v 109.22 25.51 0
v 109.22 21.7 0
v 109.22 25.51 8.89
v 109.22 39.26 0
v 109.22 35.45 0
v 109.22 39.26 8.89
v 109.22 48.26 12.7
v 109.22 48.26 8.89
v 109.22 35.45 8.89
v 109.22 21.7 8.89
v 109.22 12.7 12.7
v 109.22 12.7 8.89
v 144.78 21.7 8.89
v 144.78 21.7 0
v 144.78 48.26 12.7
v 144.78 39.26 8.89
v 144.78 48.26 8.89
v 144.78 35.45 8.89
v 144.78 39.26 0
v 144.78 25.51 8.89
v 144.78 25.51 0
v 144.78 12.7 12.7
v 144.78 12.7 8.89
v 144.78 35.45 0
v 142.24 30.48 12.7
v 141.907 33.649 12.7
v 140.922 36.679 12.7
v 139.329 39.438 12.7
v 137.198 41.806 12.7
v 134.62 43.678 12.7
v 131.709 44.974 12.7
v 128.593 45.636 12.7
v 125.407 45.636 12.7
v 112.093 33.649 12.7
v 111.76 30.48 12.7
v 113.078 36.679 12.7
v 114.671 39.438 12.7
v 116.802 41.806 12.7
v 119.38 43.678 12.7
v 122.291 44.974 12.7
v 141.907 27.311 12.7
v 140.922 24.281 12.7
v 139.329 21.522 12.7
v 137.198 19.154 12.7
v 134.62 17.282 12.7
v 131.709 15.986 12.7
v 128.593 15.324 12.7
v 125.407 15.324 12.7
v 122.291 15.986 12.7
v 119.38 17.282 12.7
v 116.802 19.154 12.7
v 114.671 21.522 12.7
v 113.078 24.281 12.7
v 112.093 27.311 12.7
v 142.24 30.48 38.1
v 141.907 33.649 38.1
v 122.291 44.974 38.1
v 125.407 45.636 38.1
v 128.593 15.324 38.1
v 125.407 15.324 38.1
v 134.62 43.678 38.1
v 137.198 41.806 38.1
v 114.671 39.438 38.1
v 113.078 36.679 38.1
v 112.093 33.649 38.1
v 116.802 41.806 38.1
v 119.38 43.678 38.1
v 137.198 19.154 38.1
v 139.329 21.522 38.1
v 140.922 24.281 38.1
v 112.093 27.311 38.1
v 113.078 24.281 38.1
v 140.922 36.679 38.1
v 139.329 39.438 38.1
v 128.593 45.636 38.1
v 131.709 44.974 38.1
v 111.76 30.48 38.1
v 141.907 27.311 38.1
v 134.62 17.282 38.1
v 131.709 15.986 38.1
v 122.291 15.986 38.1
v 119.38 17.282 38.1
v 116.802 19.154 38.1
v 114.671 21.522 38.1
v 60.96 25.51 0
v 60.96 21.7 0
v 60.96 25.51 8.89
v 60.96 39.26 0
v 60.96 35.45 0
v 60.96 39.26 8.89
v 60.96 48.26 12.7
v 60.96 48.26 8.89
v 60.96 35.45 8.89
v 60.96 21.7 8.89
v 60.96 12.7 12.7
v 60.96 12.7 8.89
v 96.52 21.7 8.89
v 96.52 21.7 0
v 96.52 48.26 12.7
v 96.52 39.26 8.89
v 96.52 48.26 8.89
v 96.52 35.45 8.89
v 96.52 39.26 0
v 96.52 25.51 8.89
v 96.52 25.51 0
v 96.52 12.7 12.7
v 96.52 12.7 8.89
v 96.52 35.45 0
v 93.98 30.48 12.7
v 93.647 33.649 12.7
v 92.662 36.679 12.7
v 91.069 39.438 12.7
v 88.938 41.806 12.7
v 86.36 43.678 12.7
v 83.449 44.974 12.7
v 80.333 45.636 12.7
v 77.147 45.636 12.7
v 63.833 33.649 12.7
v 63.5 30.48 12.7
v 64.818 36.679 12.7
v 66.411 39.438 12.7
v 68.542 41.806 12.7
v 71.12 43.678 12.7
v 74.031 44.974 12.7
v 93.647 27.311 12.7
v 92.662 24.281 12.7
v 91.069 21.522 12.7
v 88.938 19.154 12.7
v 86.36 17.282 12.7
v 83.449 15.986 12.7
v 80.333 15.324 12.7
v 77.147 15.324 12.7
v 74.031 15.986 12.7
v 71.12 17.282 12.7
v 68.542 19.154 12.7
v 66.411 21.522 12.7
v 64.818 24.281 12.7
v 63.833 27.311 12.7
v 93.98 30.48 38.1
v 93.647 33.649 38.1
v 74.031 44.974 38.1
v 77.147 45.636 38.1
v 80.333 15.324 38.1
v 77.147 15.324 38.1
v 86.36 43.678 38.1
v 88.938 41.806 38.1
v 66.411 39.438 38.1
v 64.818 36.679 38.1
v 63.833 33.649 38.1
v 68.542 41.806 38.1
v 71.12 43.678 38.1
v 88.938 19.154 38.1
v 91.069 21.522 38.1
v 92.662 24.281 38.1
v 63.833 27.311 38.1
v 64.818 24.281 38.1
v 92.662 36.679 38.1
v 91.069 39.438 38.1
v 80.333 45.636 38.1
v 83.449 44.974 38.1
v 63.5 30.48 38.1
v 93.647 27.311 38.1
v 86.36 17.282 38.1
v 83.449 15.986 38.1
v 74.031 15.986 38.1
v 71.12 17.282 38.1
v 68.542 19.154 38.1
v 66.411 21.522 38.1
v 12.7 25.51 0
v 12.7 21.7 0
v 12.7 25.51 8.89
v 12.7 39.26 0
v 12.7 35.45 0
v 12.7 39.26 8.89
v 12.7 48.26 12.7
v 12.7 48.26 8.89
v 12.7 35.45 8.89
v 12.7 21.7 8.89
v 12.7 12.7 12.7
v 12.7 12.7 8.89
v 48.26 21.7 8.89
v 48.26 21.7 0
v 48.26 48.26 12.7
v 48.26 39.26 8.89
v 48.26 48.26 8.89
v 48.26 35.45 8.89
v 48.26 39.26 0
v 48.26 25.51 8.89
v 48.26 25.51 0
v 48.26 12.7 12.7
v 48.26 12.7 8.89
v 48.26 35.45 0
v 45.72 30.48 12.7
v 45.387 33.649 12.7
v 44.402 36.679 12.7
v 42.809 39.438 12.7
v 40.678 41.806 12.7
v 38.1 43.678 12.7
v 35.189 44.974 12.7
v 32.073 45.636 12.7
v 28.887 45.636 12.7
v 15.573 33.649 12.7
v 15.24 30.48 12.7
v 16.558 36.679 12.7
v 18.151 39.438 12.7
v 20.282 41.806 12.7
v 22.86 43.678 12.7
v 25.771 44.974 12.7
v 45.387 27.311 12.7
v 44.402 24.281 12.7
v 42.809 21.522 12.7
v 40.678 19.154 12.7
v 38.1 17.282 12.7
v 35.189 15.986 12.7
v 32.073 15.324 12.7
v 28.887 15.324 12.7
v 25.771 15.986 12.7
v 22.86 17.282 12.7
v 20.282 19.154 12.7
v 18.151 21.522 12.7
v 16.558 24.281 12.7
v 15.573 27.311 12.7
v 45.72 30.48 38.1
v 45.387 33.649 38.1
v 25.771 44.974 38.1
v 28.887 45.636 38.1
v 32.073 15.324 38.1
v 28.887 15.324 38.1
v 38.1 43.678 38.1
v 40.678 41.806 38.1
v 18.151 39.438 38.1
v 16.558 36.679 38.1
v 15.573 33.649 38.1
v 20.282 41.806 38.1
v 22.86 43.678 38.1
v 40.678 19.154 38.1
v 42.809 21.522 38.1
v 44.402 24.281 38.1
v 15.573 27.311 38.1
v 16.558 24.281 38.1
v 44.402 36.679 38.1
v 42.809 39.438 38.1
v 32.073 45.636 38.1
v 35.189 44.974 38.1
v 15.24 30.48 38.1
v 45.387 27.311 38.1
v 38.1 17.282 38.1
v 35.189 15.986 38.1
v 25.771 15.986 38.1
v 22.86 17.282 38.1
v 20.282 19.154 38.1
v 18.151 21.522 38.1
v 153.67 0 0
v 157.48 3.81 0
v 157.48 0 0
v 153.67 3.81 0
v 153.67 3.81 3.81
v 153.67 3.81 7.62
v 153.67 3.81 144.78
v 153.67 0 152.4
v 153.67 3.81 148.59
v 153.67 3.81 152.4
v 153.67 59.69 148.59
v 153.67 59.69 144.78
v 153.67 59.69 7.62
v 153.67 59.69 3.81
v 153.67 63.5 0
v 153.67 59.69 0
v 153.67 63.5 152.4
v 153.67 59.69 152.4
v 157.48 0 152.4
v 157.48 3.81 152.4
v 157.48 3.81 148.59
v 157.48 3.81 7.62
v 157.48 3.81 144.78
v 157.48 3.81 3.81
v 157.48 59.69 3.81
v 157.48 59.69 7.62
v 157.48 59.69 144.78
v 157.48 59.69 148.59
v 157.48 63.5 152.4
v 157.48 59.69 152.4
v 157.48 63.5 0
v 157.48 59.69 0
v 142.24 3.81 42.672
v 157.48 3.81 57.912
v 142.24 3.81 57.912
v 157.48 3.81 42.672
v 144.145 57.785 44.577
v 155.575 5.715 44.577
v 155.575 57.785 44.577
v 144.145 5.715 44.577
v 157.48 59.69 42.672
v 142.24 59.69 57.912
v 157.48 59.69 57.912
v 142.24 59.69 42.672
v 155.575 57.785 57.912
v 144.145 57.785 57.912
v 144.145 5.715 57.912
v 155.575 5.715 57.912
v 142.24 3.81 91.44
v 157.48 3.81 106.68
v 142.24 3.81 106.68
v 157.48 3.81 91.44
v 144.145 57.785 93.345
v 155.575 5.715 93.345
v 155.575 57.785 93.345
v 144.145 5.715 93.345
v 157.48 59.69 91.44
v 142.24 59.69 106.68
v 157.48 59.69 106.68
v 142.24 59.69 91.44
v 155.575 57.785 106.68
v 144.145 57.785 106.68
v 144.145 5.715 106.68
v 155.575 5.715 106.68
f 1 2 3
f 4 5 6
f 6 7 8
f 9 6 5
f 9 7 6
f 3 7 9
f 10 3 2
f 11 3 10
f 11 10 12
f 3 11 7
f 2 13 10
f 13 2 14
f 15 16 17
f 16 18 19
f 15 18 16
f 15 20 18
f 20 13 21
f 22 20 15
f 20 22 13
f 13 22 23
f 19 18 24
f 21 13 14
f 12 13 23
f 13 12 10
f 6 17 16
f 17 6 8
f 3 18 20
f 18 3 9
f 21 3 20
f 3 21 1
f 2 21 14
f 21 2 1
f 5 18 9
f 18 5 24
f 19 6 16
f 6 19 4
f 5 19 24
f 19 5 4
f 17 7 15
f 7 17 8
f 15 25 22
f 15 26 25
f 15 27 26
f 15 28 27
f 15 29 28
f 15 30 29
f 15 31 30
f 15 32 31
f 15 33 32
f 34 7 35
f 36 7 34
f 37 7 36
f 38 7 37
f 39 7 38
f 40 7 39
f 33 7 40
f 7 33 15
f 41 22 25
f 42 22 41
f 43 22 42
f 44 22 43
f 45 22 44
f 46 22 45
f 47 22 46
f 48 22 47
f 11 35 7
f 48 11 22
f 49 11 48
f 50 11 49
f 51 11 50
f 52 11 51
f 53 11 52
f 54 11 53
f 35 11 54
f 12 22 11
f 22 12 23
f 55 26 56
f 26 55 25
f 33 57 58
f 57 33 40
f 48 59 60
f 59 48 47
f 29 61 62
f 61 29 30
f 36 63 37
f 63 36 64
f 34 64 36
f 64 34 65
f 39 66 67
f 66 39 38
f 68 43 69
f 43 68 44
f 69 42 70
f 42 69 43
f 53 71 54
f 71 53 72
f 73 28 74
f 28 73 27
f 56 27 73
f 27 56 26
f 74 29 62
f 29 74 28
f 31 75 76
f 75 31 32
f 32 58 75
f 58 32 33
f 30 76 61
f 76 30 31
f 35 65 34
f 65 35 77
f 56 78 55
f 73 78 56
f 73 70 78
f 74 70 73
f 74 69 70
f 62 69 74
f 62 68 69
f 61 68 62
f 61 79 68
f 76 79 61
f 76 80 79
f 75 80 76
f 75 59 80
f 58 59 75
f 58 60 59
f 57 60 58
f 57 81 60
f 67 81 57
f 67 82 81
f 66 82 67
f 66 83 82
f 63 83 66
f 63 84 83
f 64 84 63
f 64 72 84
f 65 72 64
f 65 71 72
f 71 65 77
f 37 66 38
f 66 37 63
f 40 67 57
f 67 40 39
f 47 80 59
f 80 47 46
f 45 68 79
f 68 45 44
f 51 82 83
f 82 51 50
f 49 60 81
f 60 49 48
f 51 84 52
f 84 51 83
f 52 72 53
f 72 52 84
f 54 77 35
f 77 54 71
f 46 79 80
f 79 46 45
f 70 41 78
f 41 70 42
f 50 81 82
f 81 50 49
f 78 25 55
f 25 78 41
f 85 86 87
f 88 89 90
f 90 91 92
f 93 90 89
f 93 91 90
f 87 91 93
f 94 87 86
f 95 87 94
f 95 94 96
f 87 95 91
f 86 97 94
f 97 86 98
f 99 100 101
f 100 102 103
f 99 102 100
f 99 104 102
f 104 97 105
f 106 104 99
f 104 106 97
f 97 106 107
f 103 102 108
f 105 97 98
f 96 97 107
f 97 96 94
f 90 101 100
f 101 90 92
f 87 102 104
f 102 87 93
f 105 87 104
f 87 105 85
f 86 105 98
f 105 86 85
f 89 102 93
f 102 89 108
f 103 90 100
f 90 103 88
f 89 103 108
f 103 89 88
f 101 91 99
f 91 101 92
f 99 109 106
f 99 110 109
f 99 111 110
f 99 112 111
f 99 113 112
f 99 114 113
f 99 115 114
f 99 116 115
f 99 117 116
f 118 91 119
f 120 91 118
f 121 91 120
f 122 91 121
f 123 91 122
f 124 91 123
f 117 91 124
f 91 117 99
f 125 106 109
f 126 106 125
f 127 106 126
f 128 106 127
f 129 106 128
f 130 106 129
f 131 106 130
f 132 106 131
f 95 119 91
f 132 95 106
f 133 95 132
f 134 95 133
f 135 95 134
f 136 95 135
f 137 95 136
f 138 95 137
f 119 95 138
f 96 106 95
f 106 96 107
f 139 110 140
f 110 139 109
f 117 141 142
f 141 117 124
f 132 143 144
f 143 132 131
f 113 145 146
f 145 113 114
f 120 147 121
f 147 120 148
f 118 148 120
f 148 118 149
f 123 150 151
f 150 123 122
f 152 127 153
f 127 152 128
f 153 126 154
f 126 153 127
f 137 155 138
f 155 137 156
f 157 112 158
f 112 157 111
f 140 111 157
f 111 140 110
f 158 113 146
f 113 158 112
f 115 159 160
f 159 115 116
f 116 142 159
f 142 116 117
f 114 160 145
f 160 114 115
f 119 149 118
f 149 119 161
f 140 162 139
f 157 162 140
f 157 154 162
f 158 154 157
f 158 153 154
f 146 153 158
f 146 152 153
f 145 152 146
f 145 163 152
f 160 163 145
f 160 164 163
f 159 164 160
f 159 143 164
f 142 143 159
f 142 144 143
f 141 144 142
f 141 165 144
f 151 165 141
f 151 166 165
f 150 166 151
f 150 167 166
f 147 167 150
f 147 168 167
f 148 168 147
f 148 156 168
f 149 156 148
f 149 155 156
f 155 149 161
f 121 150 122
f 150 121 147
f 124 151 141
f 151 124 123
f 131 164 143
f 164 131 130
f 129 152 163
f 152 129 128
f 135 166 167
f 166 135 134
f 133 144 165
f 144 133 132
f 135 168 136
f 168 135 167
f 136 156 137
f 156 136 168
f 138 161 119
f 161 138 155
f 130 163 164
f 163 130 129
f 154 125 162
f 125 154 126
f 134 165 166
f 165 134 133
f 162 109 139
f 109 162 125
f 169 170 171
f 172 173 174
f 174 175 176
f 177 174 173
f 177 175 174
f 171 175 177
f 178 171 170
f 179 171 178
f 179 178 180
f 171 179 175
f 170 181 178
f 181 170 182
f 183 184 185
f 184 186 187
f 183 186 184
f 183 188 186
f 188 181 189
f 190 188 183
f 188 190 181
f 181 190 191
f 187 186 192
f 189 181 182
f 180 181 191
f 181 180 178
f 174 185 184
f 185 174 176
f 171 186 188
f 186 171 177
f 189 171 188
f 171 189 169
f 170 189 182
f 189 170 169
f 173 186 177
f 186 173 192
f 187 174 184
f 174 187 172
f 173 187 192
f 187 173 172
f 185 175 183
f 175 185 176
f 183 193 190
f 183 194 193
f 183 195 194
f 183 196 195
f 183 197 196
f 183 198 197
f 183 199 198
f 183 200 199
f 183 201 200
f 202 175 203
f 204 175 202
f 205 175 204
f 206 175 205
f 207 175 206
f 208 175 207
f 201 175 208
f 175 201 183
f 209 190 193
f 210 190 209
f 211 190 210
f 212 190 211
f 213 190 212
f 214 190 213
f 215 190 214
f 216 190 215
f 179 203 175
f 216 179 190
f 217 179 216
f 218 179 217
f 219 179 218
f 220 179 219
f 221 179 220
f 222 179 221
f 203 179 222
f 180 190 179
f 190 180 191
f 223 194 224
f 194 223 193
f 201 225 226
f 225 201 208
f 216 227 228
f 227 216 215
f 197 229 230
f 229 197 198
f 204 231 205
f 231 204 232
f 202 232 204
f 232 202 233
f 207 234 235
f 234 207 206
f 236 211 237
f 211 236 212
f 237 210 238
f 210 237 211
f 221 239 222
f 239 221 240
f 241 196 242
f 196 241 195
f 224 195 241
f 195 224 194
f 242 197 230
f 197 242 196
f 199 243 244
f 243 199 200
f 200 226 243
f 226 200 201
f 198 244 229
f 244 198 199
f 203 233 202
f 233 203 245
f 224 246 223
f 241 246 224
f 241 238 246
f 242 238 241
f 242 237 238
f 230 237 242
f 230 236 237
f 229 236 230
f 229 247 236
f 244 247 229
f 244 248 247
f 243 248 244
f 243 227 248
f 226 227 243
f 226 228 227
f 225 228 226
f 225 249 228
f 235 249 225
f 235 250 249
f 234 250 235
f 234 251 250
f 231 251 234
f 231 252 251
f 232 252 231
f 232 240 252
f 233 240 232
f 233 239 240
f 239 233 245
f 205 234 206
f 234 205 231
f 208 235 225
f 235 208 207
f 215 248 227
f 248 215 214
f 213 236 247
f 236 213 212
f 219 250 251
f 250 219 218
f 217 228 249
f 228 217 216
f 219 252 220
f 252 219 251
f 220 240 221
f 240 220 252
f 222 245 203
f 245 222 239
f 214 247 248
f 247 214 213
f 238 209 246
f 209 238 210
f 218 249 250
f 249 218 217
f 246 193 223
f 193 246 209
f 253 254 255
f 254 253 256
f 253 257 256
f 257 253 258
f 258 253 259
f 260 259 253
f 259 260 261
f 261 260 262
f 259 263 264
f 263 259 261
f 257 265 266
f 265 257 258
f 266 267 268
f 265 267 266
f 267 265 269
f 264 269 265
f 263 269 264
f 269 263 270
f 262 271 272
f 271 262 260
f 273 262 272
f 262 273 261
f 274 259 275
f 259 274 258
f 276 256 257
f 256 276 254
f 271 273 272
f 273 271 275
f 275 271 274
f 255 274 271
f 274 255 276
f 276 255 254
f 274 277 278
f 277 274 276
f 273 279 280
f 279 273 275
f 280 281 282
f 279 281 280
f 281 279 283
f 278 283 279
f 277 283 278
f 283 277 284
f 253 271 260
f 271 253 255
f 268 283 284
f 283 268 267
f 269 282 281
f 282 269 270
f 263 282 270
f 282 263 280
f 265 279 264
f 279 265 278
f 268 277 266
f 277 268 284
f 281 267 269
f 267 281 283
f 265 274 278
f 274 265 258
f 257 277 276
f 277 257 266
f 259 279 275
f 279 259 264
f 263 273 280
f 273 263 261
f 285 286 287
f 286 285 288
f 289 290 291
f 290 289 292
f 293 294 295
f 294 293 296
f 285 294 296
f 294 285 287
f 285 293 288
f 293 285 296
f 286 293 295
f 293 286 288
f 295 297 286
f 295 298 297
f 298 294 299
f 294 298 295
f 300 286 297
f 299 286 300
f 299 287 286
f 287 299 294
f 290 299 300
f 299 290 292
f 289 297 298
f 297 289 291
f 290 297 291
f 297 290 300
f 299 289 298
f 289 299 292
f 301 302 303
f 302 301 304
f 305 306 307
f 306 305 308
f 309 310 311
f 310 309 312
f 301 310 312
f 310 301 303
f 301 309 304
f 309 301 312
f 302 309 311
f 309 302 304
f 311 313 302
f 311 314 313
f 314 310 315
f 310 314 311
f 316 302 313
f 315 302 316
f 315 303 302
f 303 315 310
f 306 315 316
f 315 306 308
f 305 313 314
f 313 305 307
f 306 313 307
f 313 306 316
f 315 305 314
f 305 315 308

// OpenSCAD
// file: common/board.scad
// board.scad

BOARD_DEFAULT_LENGTH = 600;
BOARD_DEFAULT_WIDTH = 120;
BOARD_DEFAULT_THICKNESS = 120;

function board_get_default_size()
    = [BOARD_DEFAULT_LENGTH, BOARD_DEFAULT_WIDTH, BOARD_DEFAULT_THICKNESS];

module board(size = board_get_default_size(), center = false)
{
    // size[0] is always with the grain
    // size[1] is against the grain
    // size[2] is the board thickness
    cube(size = size, center = center);
}
// file: common/common_functions.scad
// common_functions.scad

function get_visual_overrun() = 0.1;

function ft_to_cm(ft) = ft * 30.48;

function cm_to_ft(cm) = cm / 30.48;

function in_to_cm(in) = in * 2.54;

function cm_to_in(cm) = cm / 2.54;
// main file
// garden.scad
// units: centimeter

use <common/common_functions.scad>
use <common/board.scad>

WALL_LENGTH_MAJOR = in_to_cm(62);
WALL_LENGTH_MINOR = in_to_cm(25);
WALL_HEIGHT = ft_to_cm(7);
WALL_THICKNESS = 0.1;

WALL_SPACING = in_to_cm(5.0);
POT_SPACING = in_to_cm(5.0);

STAND_LEG_OFFSET = 9.0;

STAND_BOARD_LENGTH = in_to_cm(14.0);
STAND_BOARD_WIDTH = in_to_cm(3.5);
STAND_BOARD_THICKNESS = in_to_cm(1.5);

// 5 gallon fabric pots
POT_DIAMETER = in_to_cm(12.0);
POT_HEIGHT = in_to_cm(10.0);

// side shelves
POST_BOARD_LENGTH = ft_to_cm(5.0);
POST_BOARD_WIDTH = in_to_cm(1.5);
POST_BOARD_THICKNESS = in_to_cm(1.5);

SHELF_BOARD_LENGTH =
        WALL_LENGTH_MINOR
        - (2 * POST_BOARD_WIDTH);
SHELF_BOARD_WIDTH = in_to_cm(6.0);
SHELF_BOARD_THICKNESS = in_to_cm(0.75);

SHELF_HEIGHT_A = ft_to_cm(1.4);
SHELF_HEIGHT_B = ft_to_cm(3.0);

module stand_board()
{
    board_size = [
            STAND_BOARD_LENGTH,
            STAND_BOARD_WIDTH,
            STAND_BOARD_THICKNESS];

    board(board_size);
}

module stand_leg_board()
{
    translate([0, STAND_BOARD_THICKNESS, 0])
        rotate([90, 0, 0])
            stand_board();
}

module stand_base_board()
{
    translate([STAND_BOARD_WIDTH, 0, 0])
        rotate([0, 0, 90])
            stand_board();
}

module stand_legs()
{
    offsetm =
            STAND_BOARD_LENGTH
            - STAND_LEG_OFFSET
            - STAND_BOARD_THICKNESS;

    translate([0, STAND_LEG_OFFSET, 0])
        stand_leg_board();

    translate([0, offsetm, 0])
        stand_leg_board();
}

module stand_base()
{
    for(b = [0:3])
    {
        translate([
                (b * STAND_BOARD_WIDTH),
                0,
                STAND_BOARD_WIDTH])
            stand_base_board();
    }
}

module stand_assembly()
{
    stand_legs();
    stand_base();
}

module pot_assembly()
{
    cylinder(
            h = POT_HEIGHT,
            r1 = POT_DIAMETER / 2,
            r2 = POT_DIAMETER / 2,
            center = false);
}

module stand_and_pot()
{
    offset_pot = [
            STAND_BOARD_LENGTH / 2,
            STAND_BOARD_LENGTH / 2,
            STAND_BOARD_WIDTH + STAND_BOARD_THICKNESS];

    color("SandyBrown")
        stand_assembly();

    color("DimGray")
        translate(offset_pot)
            pot_assembly();
}

module shelf_frame()
{
    vert_board_size = [
            POST_BOARD_LENGTH,
            POST_BOARD_WIDTH,
            POST_BOARD_THICKNESS];

    horiz_board_size = [
            WALL_LENGTH_MINOR
                    - (2 * POST_BOARD_WIDTH),
            POST_BOARD_WIDTH,
            POST_BOARD_THICKNESS];

    translate([WALL_LENGTH_MAJOR, 0, 0])
        rotate([0, -90, 0])
        {
            board(vert_board_size);

            translate([0, WALL_LENGTH_MINOR - POST_BOARD_WIDTH, 0])
                board(vert_board_size);


            translate([(2 * POST_BOARD_THICKNESS), POST_BOARD_WIDTH, 0])
                rotate([0, 0, 90])
                    board(horiz_board_size);

            translate([POST_BOARD_LENGTH - POST_BOARD_THICKNESS, POST_BOARD_WIDTH, 0])
                rotate([0, 0, 90])
                    board(horiz_board_size);
        }
}

module shelf_pot()
{
    board_size_a = [
            SHELF_BOARD_LENGTH,
            SHELF_BOARD_WIDTH,
            SHELF_BOARD_THICKNESS];

    board_size_b = [
            SHELF_BOARD_WIDTH
                    - SHELF_BOARD_THICKNESS,
            SHELF_BOARD_WIDTH,
            SHELF_BOARD_THICKNESS];

    board_size_c = [
            SHELF_BOARD_LENGTH
                    - (2 * SHELF_BOARD_THICKNESS),
            SHELF_BOARD_WIDTH,
            SHELF_BOARD_THICKNESS];

    offset_b0 = [
            SHELF_BOARD_THICKNESS,
            0,
            SHELF_BOARD_THICKNESS];

    offset_b1 = [
            SHELF_BOARD_LENGTH,
            0,
            SHELF_BOARD_THICKNESS];

    offset_c0 = [
            SHELF_BOARD_THICKNESS,
            SHELF_BOARD_THICKNESS,
            0];

    offset_c1 = [
            SHELF_BOARD_THICKNESS,
            SHELF_BOARD_WIDTH,
            0];

    board(board_size_a);

    translate(offset_b0)
        rotate([0, -90, 0])
            board(board_size_b);

    translate(offset_b1)
        rotate([0, -90, 0])
            board(board_size_b);

    translate(offset_c0)
        rotate([90, 0, 0])
            board(board_size_c);

    translate(offset_c1)
        rotate([90, 0, 0])
            board(board_size_c);
}

module shelf()
{
    color("Peru")
        shelf_frame();

    color("SandyBrown")
        translate([WALL_LENGTH_MAJOR, POST_BOARD_WIDTH, 0])
        {
            translate([0, 0, SHELF_HEIGHT_A])
                rotate([0, 0, 90])
                    shelf_pot();

            translate([0, 0, SHELF_HEIGHT_B])
                rotate([0, 0, 90])
                    shelf_pot();
        }
}

module walls()
{
    major_wall_size = [
            WALL_LENGTH_MAJOR,
            WALL_THICKNESS,
            WALL_HEIGHT];

    minor_wall_size = [
            WALL_THICKNESS,
            WALL_LENGTH_MINOR,
            WALL_HEIGHT];

    floor_size = [
            WALL_LENGTH_MAJOR,
            WALL_LENGTH_MINOR,
            WALL_THICKNESS];

    %cube(major_wall_size);

    translate([WALL_LENGTH_MAJOR, 0, 0])
        %cube(minor_wall_size);

    %cube(floor_size);
}

module garden()
{
    offset_pot1 = [
            WALL_LENGTH_MAJOR - STAND_BOARD_LENGTH - WALL_SPACING,
            WALL_SPACING,
            0];

    offset_pot2 = [
            offset_pot1[0] - STAND_BOARD_LENGTH - POT_SPACING,
            WALL_SPACING,
            0];

    offset_pot3 = [
            offset_pot2[0] - STAND_BOARD_LENGTH - POT_SPACING,
            WALL_SPACING,
            0];

    walls();

    translate(offset_pot1)
        stand_and_pot();

    translate(offset_pot2)
        stand_and_pot();

    translate(offset_pot3)
        stand_and_pot();

    shelf();
}

garden();
